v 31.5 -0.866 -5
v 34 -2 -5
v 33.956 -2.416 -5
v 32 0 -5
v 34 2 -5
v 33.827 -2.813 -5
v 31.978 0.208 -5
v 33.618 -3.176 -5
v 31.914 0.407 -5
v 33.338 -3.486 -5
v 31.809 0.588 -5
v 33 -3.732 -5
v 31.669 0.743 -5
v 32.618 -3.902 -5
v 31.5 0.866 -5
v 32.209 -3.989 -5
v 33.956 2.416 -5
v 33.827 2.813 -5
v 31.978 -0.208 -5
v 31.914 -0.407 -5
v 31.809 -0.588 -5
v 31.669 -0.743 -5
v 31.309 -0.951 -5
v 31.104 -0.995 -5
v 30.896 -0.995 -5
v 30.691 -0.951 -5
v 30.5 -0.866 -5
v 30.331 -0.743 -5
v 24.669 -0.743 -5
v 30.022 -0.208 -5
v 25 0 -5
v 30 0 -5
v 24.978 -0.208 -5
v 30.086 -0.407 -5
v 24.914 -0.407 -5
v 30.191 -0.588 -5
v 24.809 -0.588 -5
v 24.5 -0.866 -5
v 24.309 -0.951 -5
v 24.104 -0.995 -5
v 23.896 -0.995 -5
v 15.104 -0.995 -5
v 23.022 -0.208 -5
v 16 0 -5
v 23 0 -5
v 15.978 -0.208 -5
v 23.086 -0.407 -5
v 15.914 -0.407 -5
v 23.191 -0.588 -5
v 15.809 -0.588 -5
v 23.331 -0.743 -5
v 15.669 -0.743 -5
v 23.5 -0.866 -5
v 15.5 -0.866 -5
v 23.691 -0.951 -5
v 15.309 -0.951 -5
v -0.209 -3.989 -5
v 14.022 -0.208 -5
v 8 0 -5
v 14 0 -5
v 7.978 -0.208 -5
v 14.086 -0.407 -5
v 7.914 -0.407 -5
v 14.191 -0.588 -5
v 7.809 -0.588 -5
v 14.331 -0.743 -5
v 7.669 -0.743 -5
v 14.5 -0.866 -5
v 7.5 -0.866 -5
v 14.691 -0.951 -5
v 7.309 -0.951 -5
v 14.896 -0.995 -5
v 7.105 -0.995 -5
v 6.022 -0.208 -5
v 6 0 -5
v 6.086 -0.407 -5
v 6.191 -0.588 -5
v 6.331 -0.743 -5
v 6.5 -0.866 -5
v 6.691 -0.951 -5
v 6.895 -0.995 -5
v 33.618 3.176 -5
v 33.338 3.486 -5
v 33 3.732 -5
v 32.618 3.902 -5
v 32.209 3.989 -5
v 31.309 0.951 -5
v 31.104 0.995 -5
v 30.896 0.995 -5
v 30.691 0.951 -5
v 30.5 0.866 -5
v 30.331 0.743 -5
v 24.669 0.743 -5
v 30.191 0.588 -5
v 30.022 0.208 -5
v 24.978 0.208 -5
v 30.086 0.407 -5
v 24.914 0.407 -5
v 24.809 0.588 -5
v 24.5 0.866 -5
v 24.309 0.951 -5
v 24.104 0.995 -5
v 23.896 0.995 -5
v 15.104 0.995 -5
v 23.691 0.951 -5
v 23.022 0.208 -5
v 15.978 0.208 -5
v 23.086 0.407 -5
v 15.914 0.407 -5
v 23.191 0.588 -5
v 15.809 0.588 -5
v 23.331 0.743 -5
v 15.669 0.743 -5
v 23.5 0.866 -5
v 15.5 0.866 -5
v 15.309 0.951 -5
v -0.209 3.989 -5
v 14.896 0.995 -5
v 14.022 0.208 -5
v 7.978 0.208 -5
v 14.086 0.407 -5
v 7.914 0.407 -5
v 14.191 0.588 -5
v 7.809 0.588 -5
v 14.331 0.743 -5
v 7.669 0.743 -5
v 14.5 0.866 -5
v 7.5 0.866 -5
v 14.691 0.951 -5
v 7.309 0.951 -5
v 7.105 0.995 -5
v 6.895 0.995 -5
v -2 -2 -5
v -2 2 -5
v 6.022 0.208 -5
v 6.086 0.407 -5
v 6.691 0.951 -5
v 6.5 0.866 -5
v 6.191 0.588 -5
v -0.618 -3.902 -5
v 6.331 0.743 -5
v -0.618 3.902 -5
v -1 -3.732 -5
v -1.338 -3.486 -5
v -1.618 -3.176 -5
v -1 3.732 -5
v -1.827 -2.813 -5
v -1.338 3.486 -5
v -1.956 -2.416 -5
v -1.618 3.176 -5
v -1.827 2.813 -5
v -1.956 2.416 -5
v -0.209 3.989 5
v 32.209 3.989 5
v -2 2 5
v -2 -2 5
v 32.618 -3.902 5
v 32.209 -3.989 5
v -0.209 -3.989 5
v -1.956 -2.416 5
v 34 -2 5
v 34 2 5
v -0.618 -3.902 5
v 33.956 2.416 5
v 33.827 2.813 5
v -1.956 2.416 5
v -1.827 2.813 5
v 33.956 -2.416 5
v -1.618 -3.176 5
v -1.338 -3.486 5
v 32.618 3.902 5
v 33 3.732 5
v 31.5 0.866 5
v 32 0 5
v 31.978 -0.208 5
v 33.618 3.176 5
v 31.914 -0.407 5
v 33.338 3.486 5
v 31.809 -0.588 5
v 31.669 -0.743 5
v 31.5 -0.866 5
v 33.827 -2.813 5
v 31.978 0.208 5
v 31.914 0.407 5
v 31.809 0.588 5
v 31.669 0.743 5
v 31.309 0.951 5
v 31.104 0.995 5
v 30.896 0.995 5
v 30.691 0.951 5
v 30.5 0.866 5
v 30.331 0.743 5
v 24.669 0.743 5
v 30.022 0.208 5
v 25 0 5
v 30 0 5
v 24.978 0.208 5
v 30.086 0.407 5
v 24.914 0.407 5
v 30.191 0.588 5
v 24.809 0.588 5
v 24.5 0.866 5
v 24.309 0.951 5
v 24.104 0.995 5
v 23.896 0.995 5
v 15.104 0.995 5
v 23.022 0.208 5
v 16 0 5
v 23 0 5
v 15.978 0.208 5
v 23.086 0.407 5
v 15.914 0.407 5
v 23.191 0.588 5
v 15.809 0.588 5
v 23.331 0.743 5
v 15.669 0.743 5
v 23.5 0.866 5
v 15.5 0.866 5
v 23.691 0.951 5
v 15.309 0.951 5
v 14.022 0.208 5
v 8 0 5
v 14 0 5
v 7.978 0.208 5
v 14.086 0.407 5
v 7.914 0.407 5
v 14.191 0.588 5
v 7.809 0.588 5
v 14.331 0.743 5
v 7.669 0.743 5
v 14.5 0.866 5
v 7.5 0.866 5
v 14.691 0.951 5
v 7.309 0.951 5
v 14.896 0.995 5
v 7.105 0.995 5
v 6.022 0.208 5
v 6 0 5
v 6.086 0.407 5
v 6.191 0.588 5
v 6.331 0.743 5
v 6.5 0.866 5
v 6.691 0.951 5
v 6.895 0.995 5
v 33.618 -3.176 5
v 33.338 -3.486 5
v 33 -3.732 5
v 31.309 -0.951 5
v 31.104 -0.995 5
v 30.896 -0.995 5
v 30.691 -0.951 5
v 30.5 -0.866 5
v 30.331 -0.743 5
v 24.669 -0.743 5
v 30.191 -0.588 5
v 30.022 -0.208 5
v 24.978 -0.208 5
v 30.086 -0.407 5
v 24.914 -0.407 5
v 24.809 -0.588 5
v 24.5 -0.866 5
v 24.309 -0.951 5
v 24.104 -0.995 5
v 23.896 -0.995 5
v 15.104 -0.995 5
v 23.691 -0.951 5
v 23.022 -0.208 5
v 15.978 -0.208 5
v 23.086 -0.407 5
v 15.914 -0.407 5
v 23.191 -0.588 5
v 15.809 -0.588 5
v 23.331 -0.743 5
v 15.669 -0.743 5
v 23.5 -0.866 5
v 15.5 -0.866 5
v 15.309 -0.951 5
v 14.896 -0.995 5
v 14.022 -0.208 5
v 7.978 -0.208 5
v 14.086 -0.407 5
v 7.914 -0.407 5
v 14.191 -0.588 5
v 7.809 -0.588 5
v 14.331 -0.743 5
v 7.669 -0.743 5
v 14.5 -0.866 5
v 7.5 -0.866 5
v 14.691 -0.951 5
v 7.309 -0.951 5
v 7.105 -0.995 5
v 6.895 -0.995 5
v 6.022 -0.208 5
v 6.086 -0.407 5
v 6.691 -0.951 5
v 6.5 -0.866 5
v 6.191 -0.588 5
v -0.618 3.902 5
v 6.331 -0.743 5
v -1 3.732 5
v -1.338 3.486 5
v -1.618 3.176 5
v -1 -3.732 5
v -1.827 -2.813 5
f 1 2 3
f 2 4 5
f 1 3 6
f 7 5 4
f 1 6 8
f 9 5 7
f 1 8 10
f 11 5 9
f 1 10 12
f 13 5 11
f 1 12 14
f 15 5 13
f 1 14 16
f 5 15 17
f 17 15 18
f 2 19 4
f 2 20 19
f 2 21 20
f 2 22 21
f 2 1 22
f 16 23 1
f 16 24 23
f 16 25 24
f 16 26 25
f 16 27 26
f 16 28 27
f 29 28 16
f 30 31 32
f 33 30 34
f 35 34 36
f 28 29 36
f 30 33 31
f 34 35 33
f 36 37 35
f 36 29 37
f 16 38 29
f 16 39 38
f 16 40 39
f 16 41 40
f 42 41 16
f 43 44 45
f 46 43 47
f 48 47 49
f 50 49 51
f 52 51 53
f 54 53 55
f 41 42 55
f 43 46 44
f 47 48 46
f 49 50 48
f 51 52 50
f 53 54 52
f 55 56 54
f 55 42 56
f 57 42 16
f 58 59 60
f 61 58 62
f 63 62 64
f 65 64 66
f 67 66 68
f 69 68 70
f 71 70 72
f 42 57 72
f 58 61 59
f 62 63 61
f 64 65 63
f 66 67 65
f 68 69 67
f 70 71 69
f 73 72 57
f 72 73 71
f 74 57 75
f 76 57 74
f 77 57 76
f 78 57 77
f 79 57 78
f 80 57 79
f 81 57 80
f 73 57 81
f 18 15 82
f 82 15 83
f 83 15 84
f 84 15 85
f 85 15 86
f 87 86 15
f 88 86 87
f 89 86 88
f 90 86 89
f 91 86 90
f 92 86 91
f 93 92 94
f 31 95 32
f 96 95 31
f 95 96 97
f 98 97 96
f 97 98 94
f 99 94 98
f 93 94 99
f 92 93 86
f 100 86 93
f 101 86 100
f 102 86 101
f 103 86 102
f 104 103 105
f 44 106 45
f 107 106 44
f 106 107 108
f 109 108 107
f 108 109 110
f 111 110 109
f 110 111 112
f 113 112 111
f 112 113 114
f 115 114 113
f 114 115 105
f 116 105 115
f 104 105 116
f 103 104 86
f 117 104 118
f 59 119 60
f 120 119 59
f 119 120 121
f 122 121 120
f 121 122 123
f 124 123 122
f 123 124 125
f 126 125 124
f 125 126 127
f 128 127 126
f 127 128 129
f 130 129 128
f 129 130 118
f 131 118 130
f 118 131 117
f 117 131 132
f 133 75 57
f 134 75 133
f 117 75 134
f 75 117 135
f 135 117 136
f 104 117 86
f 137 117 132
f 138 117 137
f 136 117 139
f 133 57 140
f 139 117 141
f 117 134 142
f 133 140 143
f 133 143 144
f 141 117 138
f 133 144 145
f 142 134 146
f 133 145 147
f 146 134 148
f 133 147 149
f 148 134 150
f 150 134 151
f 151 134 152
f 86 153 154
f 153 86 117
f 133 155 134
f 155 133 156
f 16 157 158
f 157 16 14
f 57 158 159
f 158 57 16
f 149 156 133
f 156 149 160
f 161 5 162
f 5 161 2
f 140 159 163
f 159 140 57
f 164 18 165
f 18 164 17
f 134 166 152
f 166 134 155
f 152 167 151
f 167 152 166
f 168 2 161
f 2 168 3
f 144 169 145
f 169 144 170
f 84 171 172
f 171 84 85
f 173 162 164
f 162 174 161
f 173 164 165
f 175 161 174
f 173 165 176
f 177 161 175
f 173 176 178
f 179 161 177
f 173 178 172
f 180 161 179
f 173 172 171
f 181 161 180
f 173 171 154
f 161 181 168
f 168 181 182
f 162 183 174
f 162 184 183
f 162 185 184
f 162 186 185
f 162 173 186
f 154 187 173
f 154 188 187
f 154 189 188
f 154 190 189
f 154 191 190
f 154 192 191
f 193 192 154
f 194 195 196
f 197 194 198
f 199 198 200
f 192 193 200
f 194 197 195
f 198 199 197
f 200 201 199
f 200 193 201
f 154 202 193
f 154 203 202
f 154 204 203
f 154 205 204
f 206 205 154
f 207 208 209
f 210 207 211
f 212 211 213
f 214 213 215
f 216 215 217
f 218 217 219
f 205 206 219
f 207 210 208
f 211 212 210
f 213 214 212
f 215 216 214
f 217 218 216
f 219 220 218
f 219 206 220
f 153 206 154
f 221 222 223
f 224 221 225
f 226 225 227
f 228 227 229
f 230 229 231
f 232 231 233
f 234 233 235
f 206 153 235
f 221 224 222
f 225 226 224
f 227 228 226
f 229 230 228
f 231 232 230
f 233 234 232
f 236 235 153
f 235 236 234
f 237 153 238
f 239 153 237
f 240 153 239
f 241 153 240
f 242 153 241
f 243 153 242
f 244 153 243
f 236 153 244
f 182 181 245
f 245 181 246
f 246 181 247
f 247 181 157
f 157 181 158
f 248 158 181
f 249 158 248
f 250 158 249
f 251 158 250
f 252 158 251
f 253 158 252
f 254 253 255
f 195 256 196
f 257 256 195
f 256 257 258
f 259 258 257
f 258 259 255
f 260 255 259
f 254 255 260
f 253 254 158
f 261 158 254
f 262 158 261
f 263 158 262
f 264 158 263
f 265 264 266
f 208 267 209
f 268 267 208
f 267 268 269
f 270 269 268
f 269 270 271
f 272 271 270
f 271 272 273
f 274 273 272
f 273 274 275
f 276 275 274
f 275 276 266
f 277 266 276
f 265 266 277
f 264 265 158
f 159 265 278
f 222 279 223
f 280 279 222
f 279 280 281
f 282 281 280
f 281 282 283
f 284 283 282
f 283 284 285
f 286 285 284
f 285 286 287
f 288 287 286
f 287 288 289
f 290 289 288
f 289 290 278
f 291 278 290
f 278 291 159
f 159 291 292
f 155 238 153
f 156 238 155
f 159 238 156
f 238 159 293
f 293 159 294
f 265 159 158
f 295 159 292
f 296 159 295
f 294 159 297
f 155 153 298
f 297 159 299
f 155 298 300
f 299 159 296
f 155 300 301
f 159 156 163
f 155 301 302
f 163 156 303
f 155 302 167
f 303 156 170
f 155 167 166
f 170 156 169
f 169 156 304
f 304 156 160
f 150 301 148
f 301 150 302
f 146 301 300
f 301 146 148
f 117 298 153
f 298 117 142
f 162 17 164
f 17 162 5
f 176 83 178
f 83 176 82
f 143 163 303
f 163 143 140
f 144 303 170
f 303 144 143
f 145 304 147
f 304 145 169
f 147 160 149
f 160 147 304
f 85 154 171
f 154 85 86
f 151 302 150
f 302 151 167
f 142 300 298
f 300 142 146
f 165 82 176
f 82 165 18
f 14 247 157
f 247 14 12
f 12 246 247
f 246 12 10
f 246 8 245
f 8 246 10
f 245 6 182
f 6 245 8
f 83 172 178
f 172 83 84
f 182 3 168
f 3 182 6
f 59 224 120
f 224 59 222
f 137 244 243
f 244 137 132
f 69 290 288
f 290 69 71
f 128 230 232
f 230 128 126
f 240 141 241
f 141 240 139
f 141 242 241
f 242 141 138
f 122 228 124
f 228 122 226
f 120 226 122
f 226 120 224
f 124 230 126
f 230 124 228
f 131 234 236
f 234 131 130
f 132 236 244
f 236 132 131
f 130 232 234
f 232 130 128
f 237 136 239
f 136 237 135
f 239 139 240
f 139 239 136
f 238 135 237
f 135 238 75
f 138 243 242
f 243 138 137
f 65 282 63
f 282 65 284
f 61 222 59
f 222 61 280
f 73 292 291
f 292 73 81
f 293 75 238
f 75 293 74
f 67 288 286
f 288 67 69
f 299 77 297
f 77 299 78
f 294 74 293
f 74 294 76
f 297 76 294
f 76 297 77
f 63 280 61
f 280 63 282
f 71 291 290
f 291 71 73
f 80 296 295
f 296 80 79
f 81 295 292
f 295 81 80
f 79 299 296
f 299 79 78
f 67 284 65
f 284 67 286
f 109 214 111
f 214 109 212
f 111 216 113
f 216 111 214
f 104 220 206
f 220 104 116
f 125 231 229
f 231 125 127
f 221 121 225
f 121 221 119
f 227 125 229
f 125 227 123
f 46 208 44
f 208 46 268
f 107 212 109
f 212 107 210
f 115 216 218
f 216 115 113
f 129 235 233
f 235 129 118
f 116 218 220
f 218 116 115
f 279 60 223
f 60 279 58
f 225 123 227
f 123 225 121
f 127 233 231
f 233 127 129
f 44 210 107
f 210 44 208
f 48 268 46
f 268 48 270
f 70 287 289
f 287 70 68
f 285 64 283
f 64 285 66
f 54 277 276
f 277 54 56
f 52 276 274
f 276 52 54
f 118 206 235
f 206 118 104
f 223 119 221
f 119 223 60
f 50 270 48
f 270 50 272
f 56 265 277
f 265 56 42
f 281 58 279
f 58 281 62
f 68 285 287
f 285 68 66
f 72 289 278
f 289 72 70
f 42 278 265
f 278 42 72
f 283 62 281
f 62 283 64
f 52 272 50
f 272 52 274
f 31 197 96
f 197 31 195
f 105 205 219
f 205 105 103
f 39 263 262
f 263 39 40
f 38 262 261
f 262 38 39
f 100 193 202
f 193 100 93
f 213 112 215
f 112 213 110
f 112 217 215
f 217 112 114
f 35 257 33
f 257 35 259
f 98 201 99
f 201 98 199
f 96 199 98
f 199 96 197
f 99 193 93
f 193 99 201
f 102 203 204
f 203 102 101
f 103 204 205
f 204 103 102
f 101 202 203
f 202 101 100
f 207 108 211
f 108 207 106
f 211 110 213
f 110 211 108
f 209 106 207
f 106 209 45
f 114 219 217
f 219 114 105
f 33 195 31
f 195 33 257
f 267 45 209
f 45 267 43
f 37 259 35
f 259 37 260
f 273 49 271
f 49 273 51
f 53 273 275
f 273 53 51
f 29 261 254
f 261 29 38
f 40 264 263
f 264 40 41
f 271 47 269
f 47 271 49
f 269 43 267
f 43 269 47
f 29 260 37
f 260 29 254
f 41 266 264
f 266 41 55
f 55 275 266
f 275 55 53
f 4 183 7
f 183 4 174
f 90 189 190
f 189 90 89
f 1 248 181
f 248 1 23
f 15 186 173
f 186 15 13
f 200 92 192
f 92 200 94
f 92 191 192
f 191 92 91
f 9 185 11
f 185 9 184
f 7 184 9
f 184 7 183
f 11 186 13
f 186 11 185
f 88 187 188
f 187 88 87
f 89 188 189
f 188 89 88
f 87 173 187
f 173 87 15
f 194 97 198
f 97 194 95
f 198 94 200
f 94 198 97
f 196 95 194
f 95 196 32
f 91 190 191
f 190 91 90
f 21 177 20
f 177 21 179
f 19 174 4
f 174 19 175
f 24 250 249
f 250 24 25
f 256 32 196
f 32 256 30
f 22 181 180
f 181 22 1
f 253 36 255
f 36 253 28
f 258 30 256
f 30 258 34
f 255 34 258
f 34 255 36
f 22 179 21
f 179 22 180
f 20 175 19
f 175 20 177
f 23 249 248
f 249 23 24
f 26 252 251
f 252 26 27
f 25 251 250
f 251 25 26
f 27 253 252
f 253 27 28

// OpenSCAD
$fn=30;
height=10;
radius=2;
difference(){
    hull(){
        translate([0,-2,0])cylinder(r=radius,h=height, center=true);
        translate([32,2,0])cylinder(r=radius,h=height, center=true);
        translate([0,2,0])cylinder(r=radius,h=height, center=true);
        translate([32,-2,0])cylinder(r=radius,h=height, center=true);
  }
    translate([7,0,0])cylinder(d=radius,h=height*10, center=true);
    translate([15,0,0])cylinder(d=radius,h=height*10, center=true);
    translate([24,0,0])cylinder(d=radius,h=height*10, center=true);
    translate([31,0,0])cylinder(d=radius,h=height*10, center=true);
}
